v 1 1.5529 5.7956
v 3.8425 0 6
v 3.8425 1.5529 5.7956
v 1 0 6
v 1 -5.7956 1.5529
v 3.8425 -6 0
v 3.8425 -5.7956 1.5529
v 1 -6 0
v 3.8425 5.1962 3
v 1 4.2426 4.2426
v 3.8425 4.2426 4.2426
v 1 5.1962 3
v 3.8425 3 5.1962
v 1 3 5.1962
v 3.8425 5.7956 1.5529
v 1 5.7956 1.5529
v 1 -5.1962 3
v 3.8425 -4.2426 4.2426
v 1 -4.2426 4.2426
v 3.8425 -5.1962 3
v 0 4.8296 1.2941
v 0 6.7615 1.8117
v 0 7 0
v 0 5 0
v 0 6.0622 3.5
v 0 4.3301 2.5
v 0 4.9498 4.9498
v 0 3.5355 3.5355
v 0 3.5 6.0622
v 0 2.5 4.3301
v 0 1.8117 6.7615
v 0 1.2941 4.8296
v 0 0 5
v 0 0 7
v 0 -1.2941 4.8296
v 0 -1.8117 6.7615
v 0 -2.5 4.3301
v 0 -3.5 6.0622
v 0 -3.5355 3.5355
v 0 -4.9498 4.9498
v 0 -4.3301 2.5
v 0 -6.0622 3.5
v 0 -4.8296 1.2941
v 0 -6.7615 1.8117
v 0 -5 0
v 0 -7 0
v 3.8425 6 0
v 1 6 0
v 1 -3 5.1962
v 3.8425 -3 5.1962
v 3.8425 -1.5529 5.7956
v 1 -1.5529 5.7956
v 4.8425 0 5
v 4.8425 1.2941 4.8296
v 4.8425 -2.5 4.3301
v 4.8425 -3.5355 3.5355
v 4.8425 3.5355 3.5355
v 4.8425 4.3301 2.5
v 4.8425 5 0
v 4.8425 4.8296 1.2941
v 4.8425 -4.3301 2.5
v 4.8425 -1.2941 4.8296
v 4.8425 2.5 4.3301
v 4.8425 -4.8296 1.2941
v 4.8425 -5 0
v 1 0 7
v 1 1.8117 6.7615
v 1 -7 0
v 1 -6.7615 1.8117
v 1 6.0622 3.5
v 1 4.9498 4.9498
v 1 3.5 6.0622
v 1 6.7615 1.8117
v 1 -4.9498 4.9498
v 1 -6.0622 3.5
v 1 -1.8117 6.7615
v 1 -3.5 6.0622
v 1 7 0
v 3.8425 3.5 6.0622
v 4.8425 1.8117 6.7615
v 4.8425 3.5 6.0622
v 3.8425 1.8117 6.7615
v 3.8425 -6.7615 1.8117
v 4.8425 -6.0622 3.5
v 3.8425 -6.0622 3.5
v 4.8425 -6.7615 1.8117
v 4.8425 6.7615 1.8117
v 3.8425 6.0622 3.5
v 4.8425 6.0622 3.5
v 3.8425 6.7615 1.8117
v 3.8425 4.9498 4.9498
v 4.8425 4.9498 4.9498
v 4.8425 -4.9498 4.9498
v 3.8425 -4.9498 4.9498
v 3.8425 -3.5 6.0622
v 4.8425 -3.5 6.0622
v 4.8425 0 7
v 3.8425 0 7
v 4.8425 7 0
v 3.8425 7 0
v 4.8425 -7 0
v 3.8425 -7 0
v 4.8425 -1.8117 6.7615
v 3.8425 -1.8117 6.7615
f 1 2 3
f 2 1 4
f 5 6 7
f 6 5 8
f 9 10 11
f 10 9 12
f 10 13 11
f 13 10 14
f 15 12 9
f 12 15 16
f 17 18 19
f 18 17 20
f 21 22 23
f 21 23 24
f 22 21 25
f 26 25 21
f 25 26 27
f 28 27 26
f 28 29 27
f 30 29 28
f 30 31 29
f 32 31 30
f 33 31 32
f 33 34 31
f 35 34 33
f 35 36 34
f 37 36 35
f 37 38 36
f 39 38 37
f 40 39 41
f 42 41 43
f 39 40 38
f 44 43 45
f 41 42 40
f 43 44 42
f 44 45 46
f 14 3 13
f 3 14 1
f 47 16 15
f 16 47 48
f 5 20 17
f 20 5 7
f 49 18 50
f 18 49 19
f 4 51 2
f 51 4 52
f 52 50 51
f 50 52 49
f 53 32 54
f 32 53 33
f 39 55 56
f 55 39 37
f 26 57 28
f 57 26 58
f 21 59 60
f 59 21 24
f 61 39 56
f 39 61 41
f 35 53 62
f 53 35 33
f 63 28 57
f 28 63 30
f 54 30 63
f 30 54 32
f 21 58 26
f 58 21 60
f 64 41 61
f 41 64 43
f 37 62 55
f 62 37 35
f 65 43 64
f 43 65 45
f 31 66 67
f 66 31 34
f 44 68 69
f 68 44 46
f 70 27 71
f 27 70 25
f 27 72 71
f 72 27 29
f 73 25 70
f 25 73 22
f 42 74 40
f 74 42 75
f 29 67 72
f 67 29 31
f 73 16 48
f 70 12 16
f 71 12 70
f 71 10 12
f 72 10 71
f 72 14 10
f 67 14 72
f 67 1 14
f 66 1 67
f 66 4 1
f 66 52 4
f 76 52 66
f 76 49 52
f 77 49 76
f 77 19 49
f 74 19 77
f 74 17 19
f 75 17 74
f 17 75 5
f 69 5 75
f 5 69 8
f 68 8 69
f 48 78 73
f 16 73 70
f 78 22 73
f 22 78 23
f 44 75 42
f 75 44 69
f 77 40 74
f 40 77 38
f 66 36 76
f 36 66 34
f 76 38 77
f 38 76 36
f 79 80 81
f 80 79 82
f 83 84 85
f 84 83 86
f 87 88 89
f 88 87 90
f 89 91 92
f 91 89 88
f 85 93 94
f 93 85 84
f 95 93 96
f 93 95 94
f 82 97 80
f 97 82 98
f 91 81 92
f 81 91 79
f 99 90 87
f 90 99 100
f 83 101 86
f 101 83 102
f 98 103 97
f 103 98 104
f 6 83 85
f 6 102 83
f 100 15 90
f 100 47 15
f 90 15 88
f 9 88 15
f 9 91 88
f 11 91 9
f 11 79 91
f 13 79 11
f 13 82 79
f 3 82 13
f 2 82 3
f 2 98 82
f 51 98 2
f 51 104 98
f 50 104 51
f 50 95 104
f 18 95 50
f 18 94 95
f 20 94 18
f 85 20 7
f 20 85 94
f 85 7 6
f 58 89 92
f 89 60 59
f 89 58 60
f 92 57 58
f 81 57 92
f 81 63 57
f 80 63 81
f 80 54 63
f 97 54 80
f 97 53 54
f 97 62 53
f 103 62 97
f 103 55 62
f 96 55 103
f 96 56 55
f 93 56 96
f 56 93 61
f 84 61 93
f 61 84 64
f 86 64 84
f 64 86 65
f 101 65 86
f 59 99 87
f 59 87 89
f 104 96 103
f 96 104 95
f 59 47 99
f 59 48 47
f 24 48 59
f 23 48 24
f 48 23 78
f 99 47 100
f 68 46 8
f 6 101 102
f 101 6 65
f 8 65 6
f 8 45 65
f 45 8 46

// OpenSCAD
// file: ../build_environments.scad
// build_environments.scad: modules to build level sections
//

module pool(diameter=10.0, wall_height=2.0, step_width=3.0, connections=[])
{
    difference() {
        union() {
        difference() {
            cylinder(h=0.5,r1=diameter+step_width,r2=diameter+step_width,$fn=48);
            translate([0,0,-0.1])
                cylinder(h=0.7,r1=diameter,r2=diameter,$fn=48);
        }
        difference() {
            cylinder(h=wall_height,r1=diameter+step_width+1.0,r2=diameter+step_width+1.0,$fn=48);
            translate([0,0,-0.1])
                cylinder(h=wall_height+0.2,r1=diameter+step_width,r2=diameter+step_width,$fn=48);
        }
        }
    
        for (c = connections)
        {
            rotate([0,90,0]) {
                angle = atan2(c[1],c[0]);
                rotate([-angle,0,0]) {
                    cylinder(h=diameter+5.0,r1=c[2],r2=c[2],$fn=48);
                }
            }
        }
    }
}

module straight(length=10.0, width=2.0, dy1=0.0, dy2=0.0, dz=0.0)
{
    dims = [0, 0, 0, 0, 0, (dz/length)];
    matrix = [
        [ 1, dims[0], dims[1], 0 ],
        [ dims[2], 1, dims[4], 0 ],
        [ dims[5], dims[3], 1, 0 ],
        [ 0, 0, 0, 1 ]
    ];
    multmatrix(matrix)
    difference() {
        translate([dy1,0,0])
        union() {
            rotate([0,90,0]) {
                difference() {
                    cylinder(h=(length-dy1-dy2),r1=width+1.0,r2=width+1.0,$fn=24);
                    translate([0,0,-0.1])
                        cylinder(h=(length-dy1-dy2+0.2),r1=width,r2=width,$fn=24);
                }
                difference() {
                    cylinder(h=1.0,r1=width+2.0,r2=width+2.0,$fn=24);
                    translate([0,0,-0.1])
                        cylinder(h=1.2,r1=width,r2=width,$fn=24);
                }
                translate([0,0,(length-dy1-dy2)-1.0]) {
                    difference() {
                        cylinder(h=1.0,r1=width+2.0,r2=width+2.0,$fn=24);
                        translate([0,0,-0.1])
                            cylinder(h=1.2,r1=width,r2=width,$fn=24);
                    }
                }
            }
        }
        translate([0,0,-(2*width+4.0)/2])
            cube([3*length,3*length,2*width+4.0],center=true);
    }
}

module curve(p0=[0,0], center=[0,0], dir=1, angle=0.0, width=2.0)
{
    radius = sqrt((p0[0]-center[0])*(p0[0]-center[0]) + (p0[1]-center[1])*(p0[1]-center[1]));
    if (dir == 0) {
        difference() {
            rotate([0,0,-90])
            difference() {
                rotate_extrude(angle = angle, convexity = 10, $fn=32)
                    translate([radius, 0, 0])
                        circle(r = width+1.0,$fn=24);
                rotate([0,0,-1.0])
                    rotate_extrude(angle = angle+2.0, convexity = 10, $fn=32)
                        translate([radius, 0, 0])
                            circle(r = width,$fn=24);
            }
            translate([0,0,-(2*width+4.0)/2])
                cube([5*radius,5*radius,2*width+4.0],center=true);
        }
    }
    else {
        difference() {
            rotate([0,0,90])
            difference() {
                rotate_extrude(angle = -angle, convexity = 10, $fn=32)
                    translate([radius, 0, 0])
                        circle(r = width+1.0,$fn=24);
                rotate([0,0,1.0])
                    rotate_extrude(angle = -angle-2.0, convexity = 10, $fn=32)
                        translate([radius, 0, 0])
                            circle(r = width,$fn=24);
            }
            translate([0,0,-(2*width+4.0)/2])
                cube([5*radius,5*radius,2*width+4.0],center=true);
        }
    }

}

// test pool
//pool(diameter=12.0000, wall_height=3.0000, step_width=3.0000, connections=[[0.0000,-26.0000,2.0000], [23.6074,0.0000,2.0000]]);

// test straight, slope
//straight(length=26.0000, width=2.0000, dy1=11.8322, dy2=6.7082, dz=0.0000);
//straight(length=29.1549, width=12.0000, dy1=0.0000, dy2=0.0000, dz=-15.0000);

// test curve
//curve(p0=[23.6074, 0.0000], center=[23.6074, 5.0000], dir=0, angle=60.1011, width=2.0000);
//curve(p0=[33.6426, 12.4219], center=[37.9771, 9.9295], dir=1, angle=120.4627, width=2.0000);
// main file
use <../build_environments.scad>;
straight(length=4.8425, width=5.0000, dy1=0.0000, dy2=0.0000, dz=0.0000);
